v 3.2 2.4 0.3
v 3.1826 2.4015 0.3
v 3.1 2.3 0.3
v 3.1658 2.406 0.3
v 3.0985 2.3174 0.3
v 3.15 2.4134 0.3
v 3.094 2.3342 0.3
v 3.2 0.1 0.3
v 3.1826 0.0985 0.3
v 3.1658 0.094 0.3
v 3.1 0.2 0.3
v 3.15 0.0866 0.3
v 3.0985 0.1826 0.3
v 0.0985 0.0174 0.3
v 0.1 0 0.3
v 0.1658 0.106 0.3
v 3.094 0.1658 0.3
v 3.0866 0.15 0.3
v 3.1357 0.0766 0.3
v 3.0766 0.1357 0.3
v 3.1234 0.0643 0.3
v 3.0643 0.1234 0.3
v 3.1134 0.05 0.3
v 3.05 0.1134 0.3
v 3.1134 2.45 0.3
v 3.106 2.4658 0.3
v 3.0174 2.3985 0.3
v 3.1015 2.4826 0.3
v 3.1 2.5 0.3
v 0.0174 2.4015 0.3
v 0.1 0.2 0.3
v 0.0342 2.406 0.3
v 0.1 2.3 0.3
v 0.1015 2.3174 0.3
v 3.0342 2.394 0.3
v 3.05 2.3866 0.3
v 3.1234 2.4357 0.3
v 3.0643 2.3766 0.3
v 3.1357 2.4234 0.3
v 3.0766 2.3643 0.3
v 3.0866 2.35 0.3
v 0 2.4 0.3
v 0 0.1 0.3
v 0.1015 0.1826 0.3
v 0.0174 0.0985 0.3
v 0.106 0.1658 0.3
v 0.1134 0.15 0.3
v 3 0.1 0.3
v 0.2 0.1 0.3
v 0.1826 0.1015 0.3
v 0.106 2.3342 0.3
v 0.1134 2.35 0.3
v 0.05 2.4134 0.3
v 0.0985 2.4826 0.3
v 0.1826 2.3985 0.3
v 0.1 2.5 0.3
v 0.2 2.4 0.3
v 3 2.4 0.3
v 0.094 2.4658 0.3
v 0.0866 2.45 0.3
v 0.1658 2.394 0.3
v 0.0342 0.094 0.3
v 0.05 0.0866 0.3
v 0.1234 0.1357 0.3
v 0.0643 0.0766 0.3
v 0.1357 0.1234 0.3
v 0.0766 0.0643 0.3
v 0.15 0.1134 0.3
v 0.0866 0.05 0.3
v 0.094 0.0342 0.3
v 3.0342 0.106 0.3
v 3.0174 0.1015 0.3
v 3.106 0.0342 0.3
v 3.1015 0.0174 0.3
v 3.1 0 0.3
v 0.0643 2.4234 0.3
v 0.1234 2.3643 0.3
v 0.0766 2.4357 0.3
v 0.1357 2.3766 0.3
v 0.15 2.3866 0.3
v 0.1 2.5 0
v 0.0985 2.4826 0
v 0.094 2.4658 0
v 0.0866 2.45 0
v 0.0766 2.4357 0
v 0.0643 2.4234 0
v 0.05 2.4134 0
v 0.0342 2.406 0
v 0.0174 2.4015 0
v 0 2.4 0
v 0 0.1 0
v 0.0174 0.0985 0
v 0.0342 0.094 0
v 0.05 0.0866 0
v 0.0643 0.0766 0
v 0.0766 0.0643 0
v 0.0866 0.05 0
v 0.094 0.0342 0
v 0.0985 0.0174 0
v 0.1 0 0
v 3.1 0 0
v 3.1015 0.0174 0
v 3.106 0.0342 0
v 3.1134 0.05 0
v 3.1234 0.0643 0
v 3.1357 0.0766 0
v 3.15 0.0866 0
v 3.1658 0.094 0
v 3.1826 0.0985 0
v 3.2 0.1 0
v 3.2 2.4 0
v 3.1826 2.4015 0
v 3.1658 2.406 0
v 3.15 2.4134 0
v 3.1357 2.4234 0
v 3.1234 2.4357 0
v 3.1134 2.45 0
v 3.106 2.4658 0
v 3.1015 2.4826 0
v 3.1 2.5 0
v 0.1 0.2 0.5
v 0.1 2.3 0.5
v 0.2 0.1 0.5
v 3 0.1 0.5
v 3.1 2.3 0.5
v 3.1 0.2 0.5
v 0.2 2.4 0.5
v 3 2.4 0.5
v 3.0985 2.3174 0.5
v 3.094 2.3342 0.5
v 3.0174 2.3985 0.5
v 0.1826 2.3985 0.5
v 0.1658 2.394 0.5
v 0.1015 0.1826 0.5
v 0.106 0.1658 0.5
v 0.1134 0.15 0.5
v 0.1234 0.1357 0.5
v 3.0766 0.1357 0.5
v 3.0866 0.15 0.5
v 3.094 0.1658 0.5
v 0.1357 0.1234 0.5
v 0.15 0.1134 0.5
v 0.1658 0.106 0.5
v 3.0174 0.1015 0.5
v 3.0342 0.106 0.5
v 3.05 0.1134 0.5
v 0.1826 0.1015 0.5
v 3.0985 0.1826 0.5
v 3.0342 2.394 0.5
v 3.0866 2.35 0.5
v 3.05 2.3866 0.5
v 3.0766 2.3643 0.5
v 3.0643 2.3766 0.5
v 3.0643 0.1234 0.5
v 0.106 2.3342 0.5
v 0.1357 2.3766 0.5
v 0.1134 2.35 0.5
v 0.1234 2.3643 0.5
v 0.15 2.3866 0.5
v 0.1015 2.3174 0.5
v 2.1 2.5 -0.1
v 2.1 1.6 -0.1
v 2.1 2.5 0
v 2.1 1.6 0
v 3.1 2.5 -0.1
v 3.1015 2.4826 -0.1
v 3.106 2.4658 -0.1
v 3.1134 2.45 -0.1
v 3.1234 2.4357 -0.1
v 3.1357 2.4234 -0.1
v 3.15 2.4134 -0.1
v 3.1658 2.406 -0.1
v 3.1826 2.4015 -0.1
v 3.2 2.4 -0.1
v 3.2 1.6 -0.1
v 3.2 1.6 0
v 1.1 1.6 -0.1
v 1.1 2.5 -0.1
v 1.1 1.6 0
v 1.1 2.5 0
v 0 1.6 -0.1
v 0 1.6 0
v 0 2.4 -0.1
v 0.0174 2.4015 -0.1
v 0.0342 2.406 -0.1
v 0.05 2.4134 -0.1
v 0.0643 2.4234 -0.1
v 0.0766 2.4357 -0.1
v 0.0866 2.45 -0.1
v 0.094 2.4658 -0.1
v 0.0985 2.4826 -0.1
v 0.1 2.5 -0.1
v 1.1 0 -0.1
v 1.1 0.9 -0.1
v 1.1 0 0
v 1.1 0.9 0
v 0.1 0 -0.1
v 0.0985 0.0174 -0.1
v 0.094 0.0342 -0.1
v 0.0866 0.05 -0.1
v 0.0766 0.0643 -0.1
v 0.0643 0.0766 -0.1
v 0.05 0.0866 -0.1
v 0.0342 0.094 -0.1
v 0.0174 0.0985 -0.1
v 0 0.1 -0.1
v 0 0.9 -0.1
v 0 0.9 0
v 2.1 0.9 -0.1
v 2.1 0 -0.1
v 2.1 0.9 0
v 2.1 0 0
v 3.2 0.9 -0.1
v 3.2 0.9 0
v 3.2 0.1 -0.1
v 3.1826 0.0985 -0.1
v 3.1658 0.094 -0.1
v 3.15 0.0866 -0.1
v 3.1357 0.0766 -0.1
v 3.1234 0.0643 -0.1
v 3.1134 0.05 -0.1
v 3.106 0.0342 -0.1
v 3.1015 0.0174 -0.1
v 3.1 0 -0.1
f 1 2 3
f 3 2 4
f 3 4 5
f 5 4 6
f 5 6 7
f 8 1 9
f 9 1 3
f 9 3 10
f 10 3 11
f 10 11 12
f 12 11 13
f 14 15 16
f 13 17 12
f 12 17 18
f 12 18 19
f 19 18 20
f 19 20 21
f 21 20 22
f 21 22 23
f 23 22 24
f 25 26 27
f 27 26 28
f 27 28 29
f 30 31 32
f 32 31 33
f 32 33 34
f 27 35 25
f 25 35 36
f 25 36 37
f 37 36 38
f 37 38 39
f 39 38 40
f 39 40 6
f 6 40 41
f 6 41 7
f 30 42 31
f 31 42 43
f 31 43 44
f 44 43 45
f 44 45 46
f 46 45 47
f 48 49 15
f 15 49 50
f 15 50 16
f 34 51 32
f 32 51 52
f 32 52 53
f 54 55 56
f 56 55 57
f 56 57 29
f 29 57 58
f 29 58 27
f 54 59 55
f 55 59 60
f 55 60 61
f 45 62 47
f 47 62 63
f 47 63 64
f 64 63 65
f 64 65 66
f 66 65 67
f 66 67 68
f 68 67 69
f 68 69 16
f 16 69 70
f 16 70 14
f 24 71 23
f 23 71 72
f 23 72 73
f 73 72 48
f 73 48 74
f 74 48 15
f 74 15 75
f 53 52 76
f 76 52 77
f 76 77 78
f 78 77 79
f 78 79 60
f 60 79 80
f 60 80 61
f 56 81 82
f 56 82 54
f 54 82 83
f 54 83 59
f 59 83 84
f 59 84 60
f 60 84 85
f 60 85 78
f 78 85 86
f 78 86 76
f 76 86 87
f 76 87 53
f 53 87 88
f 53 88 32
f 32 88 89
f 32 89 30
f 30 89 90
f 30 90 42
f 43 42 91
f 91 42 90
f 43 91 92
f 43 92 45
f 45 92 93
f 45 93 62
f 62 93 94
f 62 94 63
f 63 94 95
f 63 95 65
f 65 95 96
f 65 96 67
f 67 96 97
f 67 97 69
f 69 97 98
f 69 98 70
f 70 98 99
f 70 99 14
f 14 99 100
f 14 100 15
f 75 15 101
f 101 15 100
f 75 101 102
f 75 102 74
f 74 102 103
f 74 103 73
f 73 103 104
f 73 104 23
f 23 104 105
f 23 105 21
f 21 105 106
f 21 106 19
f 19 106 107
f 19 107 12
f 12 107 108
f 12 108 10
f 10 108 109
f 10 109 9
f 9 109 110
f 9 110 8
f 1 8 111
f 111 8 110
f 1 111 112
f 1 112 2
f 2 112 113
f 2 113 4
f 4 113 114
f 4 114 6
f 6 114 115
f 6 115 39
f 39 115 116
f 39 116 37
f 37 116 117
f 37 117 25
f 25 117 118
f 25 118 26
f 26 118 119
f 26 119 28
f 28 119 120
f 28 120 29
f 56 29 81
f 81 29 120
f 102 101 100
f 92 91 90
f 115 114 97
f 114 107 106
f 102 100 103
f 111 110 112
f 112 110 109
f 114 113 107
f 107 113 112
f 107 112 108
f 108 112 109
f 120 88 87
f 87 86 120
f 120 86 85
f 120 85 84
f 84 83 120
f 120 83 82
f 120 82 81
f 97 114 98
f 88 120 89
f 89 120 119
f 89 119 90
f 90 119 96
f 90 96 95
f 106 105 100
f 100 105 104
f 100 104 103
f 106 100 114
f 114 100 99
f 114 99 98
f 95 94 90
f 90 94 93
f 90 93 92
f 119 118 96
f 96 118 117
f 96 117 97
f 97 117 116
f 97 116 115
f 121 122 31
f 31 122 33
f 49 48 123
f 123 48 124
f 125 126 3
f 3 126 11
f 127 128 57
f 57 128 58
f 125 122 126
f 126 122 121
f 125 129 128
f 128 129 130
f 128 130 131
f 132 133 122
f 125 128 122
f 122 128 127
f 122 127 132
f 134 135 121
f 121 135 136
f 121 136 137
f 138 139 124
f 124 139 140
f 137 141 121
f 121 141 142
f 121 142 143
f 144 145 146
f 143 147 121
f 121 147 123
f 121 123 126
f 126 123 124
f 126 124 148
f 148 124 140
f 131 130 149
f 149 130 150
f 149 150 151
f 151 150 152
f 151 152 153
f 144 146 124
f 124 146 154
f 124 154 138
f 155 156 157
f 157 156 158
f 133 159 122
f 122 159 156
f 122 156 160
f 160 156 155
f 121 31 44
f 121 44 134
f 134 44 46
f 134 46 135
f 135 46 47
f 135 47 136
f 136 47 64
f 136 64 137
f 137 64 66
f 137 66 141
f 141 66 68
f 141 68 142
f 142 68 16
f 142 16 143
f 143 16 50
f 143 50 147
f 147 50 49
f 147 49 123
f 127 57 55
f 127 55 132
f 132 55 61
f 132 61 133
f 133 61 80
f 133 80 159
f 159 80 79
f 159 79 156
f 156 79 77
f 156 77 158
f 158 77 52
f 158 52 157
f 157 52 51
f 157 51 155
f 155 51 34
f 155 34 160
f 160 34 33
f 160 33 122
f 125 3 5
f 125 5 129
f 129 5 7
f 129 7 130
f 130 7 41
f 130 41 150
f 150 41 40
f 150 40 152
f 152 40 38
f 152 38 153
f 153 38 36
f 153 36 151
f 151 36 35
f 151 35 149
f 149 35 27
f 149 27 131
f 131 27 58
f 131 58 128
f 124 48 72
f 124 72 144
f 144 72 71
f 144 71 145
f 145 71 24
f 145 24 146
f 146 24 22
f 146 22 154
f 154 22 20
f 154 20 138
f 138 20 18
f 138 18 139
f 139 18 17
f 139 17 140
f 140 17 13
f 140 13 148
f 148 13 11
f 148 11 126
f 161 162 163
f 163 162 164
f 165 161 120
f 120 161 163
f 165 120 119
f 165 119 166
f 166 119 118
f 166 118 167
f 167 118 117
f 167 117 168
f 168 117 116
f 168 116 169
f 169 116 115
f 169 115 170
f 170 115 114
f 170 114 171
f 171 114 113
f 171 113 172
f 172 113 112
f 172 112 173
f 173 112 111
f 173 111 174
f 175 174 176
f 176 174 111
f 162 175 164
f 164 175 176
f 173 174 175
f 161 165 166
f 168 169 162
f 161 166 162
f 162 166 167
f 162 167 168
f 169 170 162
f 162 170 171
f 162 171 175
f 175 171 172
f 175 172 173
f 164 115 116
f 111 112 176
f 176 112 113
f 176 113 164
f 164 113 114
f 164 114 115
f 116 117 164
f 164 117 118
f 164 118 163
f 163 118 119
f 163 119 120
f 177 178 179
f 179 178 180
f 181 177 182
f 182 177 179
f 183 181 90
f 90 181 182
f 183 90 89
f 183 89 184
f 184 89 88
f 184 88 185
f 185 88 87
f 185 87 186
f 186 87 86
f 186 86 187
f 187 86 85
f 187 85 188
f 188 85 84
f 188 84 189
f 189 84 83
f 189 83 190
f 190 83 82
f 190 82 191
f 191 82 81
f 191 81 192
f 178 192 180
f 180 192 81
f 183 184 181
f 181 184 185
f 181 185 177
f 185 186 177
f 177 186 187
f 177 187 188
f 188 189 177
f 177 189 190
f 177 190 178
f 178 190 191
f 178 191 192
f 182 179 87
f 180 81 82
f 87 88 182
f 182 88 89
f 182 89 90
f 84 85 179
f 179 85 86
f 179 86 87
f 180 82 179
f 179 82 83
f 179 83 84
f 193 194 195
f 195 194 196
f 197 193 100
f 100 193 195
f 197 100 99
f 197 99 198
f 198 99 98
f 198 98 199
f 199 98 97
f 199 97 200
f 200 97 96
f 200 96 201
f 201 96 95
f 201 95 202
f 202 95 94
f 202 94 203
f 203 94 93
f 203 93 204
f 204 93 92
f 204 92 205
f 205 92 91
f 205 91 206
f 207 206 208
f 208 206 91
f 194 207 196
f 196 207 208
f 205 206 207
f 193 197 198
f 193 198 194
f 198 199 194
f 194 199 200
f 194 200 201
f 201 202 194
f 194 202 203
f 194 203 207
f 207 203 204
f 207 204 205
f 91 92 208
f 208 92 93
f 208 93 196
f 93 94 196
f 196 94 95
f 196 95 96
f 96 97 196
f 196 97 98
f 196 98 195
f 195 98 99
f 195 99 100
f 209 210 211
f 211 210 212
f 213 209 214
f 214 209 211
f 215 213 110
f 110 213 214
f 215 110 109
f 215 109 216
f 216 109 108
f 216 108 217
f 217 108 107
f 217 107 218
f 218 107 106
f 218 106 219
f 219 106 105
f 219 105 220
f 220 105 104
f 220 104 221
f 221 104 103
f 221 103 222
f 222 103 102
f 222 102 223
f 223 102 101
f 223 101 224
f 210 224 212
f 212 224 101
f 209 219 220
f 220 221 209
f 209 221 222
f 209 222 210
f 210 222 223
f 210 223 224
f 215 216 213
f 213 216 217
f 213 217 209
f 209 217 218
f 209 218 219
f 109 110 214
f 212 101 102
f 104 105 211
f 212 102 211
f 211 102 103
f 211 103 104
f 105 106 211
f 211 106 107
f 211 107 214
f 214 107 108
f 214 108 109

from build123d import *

# Parameters (mm, degrees)
BOSS_EXTRUDE1_DEPTH   = 0.3
SKETCH2_W             = 3
SKETCH2_H             = 2.3
BOSS_EXTRUDE2_DEPTH   = 0.2
FILLET1_R             = 0.1
BOSS_EXTRUDE3_DEPTH   = 0.1
BOSS_EXTRUDE3_2_DEPTH = 0.1
BOSS_EXTRUDE3_3_DEPTH = 0.1
BOSS_EXTRUDE3_4_DEPTH = 0.1


with BuildPart() as part:
    # Sketch1 → Boss-Extrude1 (new body)
    with BuildSketch(Plane.XY):
        with BuildLine():
            Line((0.1, 0), (3.1, 0))
            ThreePointArc((3.1, 0), (3.129289322, 0.070710678), (3.2, 0.1))
            Line((3.2, 0.1), (3.2, 2.4))
            ThreePointArc((3.2, 2.4), (3.129289322, 2.429289322), (3.1, 2.5))
            Line((3.1, 2.5), (0.1, 2.5))
            ThreePointArc((0.1, 2.5), (0.070710678, 2.429289322), (0, 2.4))
            Line((0, 2.4), (0, 0.1))
            ThreePointArc((0, 0.1), (0.070710678, 0.070710678), (0.1, 0))
        make_face()
    extrude(amount=BOSS_EXTRUDE1_DEPTH)

    # Sketch2 → Boss-Extrude2 (add)
    with BuildSketch(Plane.XY.offset(0.3)):
        with Locations((1.6, 1.25)):
            Rectangle(SKETCH2_W, SKETCH2_H)
    extrude(amount=BOSS_EXTRUDE2_DEPTH)

    # Fillet1
    fillet1_edges = [part.edges().sort_by_distance(p)[0] for p in [
        (0.1, 2.4, 0.4),
        (0.1, 0.1, 0.4),
        (3.1, 0.1, 0.4),
        (3.1, 2.4, 0.4),
    ]]
    fillet(fillet1_edges, radius=FILLET1_R)


with BuildPart() as body_2:
    # Sketch3 → Boss-Extrude3 (new body)
    with BuildSketch(Plane(origin=(0, 0, 0), x_dir=(-1, 0, 0), z_dir=(0, 0, -1))):
        with BuildLine():
            Line((-2.1, 2.5), (-3.1, 2.5))
            ThreePointArc((-3.1, 2.5), (-3.129289322, 2.429289322), (-3.2, 2.4))
            Line((-3.2, 2.4), (-3.2, 1.6))
            Line((-3.2, 1.6), (-2.1, 1.6))
            Line((-2.1, 1.6), (-2.1, 2.5))
        make_face()
    extrude(amount=BOSS_EXTRUDE3_DEPTH)


with BuildPart() as body_3:
    # Sketch3 → Boss-Extrude3 2 (new body)
    with BuildSketch(Plane(origin=(0, 0, 0), x_dir=(-1, 0, 0), z_dir=(0, 0, -1))):
        with BuildLine():
            Line((-1.1, 2.5), (-0.1, 2.5))
            ThreePointArc((-0.1, 2.5), (-0.070710678, 2.429289322), (0, 2.4))
            Line((0, 2.4), (0, 1.6))
            Line((0, 1.6), (-1.1, 1.6))
            Line((-1.1, 1.6), (-1.1, 2.5))
        make_face()
    extrude(amount=BOSS_EXTRUDE3_2_DEPTH)


with BuildPart() as body_4:
    # Sketch3 → Boss-Extrude3 3 (new body)
    with BuildSketch(Plane(origin=(0, 0, 0), x_dir=(-1, 0, 0), z_dir=(0, 0, -1))):
        with BuildLine():
            Line((-1.1, 0.9), (0, 0.9))
            Line((0, 0.9), (0, 0.1))
            ThreePointArc((0, 0.1), (-0.070710678, 0.070710678), (-0.1, 0))
            Line((-0.1, 0), (-1.1, 0))
            Line((-1.1, 0), (-1.1, 0.9))
        make_face()
    extrude(amount=BOSS_EXTRUDE3_3_DEPTH)


with BuildPart() as body_5:
    # Sketch3 → Boss-Extrude3 4 (new body)
    with BuildSketch(Plane(origin=(0, 0, 0), x_dir=(-1, 0, 0), z_dir=(0, 0, -1))):
        with BuildLine():
            Line((-2.1, 0.9), (-3.2, 0.9))
            Line((-3.2, 0.9), (-3.2, 0.1))
            ThreePointArc((-3.2, 0.1), (-3.129289322, 0.070710678), (-3.1, 0))
            Line((-3.1, 0), (-2.1, 0))
            Line((-2.1, 0), (-2.1, 0.9))
        make_face()
    extrude(amount=BOSS_EXTRUDE3_4_DEPTH)


solid = Compound([part.part, body_2.part, body_3.part, body_4.part, body_5.part])
